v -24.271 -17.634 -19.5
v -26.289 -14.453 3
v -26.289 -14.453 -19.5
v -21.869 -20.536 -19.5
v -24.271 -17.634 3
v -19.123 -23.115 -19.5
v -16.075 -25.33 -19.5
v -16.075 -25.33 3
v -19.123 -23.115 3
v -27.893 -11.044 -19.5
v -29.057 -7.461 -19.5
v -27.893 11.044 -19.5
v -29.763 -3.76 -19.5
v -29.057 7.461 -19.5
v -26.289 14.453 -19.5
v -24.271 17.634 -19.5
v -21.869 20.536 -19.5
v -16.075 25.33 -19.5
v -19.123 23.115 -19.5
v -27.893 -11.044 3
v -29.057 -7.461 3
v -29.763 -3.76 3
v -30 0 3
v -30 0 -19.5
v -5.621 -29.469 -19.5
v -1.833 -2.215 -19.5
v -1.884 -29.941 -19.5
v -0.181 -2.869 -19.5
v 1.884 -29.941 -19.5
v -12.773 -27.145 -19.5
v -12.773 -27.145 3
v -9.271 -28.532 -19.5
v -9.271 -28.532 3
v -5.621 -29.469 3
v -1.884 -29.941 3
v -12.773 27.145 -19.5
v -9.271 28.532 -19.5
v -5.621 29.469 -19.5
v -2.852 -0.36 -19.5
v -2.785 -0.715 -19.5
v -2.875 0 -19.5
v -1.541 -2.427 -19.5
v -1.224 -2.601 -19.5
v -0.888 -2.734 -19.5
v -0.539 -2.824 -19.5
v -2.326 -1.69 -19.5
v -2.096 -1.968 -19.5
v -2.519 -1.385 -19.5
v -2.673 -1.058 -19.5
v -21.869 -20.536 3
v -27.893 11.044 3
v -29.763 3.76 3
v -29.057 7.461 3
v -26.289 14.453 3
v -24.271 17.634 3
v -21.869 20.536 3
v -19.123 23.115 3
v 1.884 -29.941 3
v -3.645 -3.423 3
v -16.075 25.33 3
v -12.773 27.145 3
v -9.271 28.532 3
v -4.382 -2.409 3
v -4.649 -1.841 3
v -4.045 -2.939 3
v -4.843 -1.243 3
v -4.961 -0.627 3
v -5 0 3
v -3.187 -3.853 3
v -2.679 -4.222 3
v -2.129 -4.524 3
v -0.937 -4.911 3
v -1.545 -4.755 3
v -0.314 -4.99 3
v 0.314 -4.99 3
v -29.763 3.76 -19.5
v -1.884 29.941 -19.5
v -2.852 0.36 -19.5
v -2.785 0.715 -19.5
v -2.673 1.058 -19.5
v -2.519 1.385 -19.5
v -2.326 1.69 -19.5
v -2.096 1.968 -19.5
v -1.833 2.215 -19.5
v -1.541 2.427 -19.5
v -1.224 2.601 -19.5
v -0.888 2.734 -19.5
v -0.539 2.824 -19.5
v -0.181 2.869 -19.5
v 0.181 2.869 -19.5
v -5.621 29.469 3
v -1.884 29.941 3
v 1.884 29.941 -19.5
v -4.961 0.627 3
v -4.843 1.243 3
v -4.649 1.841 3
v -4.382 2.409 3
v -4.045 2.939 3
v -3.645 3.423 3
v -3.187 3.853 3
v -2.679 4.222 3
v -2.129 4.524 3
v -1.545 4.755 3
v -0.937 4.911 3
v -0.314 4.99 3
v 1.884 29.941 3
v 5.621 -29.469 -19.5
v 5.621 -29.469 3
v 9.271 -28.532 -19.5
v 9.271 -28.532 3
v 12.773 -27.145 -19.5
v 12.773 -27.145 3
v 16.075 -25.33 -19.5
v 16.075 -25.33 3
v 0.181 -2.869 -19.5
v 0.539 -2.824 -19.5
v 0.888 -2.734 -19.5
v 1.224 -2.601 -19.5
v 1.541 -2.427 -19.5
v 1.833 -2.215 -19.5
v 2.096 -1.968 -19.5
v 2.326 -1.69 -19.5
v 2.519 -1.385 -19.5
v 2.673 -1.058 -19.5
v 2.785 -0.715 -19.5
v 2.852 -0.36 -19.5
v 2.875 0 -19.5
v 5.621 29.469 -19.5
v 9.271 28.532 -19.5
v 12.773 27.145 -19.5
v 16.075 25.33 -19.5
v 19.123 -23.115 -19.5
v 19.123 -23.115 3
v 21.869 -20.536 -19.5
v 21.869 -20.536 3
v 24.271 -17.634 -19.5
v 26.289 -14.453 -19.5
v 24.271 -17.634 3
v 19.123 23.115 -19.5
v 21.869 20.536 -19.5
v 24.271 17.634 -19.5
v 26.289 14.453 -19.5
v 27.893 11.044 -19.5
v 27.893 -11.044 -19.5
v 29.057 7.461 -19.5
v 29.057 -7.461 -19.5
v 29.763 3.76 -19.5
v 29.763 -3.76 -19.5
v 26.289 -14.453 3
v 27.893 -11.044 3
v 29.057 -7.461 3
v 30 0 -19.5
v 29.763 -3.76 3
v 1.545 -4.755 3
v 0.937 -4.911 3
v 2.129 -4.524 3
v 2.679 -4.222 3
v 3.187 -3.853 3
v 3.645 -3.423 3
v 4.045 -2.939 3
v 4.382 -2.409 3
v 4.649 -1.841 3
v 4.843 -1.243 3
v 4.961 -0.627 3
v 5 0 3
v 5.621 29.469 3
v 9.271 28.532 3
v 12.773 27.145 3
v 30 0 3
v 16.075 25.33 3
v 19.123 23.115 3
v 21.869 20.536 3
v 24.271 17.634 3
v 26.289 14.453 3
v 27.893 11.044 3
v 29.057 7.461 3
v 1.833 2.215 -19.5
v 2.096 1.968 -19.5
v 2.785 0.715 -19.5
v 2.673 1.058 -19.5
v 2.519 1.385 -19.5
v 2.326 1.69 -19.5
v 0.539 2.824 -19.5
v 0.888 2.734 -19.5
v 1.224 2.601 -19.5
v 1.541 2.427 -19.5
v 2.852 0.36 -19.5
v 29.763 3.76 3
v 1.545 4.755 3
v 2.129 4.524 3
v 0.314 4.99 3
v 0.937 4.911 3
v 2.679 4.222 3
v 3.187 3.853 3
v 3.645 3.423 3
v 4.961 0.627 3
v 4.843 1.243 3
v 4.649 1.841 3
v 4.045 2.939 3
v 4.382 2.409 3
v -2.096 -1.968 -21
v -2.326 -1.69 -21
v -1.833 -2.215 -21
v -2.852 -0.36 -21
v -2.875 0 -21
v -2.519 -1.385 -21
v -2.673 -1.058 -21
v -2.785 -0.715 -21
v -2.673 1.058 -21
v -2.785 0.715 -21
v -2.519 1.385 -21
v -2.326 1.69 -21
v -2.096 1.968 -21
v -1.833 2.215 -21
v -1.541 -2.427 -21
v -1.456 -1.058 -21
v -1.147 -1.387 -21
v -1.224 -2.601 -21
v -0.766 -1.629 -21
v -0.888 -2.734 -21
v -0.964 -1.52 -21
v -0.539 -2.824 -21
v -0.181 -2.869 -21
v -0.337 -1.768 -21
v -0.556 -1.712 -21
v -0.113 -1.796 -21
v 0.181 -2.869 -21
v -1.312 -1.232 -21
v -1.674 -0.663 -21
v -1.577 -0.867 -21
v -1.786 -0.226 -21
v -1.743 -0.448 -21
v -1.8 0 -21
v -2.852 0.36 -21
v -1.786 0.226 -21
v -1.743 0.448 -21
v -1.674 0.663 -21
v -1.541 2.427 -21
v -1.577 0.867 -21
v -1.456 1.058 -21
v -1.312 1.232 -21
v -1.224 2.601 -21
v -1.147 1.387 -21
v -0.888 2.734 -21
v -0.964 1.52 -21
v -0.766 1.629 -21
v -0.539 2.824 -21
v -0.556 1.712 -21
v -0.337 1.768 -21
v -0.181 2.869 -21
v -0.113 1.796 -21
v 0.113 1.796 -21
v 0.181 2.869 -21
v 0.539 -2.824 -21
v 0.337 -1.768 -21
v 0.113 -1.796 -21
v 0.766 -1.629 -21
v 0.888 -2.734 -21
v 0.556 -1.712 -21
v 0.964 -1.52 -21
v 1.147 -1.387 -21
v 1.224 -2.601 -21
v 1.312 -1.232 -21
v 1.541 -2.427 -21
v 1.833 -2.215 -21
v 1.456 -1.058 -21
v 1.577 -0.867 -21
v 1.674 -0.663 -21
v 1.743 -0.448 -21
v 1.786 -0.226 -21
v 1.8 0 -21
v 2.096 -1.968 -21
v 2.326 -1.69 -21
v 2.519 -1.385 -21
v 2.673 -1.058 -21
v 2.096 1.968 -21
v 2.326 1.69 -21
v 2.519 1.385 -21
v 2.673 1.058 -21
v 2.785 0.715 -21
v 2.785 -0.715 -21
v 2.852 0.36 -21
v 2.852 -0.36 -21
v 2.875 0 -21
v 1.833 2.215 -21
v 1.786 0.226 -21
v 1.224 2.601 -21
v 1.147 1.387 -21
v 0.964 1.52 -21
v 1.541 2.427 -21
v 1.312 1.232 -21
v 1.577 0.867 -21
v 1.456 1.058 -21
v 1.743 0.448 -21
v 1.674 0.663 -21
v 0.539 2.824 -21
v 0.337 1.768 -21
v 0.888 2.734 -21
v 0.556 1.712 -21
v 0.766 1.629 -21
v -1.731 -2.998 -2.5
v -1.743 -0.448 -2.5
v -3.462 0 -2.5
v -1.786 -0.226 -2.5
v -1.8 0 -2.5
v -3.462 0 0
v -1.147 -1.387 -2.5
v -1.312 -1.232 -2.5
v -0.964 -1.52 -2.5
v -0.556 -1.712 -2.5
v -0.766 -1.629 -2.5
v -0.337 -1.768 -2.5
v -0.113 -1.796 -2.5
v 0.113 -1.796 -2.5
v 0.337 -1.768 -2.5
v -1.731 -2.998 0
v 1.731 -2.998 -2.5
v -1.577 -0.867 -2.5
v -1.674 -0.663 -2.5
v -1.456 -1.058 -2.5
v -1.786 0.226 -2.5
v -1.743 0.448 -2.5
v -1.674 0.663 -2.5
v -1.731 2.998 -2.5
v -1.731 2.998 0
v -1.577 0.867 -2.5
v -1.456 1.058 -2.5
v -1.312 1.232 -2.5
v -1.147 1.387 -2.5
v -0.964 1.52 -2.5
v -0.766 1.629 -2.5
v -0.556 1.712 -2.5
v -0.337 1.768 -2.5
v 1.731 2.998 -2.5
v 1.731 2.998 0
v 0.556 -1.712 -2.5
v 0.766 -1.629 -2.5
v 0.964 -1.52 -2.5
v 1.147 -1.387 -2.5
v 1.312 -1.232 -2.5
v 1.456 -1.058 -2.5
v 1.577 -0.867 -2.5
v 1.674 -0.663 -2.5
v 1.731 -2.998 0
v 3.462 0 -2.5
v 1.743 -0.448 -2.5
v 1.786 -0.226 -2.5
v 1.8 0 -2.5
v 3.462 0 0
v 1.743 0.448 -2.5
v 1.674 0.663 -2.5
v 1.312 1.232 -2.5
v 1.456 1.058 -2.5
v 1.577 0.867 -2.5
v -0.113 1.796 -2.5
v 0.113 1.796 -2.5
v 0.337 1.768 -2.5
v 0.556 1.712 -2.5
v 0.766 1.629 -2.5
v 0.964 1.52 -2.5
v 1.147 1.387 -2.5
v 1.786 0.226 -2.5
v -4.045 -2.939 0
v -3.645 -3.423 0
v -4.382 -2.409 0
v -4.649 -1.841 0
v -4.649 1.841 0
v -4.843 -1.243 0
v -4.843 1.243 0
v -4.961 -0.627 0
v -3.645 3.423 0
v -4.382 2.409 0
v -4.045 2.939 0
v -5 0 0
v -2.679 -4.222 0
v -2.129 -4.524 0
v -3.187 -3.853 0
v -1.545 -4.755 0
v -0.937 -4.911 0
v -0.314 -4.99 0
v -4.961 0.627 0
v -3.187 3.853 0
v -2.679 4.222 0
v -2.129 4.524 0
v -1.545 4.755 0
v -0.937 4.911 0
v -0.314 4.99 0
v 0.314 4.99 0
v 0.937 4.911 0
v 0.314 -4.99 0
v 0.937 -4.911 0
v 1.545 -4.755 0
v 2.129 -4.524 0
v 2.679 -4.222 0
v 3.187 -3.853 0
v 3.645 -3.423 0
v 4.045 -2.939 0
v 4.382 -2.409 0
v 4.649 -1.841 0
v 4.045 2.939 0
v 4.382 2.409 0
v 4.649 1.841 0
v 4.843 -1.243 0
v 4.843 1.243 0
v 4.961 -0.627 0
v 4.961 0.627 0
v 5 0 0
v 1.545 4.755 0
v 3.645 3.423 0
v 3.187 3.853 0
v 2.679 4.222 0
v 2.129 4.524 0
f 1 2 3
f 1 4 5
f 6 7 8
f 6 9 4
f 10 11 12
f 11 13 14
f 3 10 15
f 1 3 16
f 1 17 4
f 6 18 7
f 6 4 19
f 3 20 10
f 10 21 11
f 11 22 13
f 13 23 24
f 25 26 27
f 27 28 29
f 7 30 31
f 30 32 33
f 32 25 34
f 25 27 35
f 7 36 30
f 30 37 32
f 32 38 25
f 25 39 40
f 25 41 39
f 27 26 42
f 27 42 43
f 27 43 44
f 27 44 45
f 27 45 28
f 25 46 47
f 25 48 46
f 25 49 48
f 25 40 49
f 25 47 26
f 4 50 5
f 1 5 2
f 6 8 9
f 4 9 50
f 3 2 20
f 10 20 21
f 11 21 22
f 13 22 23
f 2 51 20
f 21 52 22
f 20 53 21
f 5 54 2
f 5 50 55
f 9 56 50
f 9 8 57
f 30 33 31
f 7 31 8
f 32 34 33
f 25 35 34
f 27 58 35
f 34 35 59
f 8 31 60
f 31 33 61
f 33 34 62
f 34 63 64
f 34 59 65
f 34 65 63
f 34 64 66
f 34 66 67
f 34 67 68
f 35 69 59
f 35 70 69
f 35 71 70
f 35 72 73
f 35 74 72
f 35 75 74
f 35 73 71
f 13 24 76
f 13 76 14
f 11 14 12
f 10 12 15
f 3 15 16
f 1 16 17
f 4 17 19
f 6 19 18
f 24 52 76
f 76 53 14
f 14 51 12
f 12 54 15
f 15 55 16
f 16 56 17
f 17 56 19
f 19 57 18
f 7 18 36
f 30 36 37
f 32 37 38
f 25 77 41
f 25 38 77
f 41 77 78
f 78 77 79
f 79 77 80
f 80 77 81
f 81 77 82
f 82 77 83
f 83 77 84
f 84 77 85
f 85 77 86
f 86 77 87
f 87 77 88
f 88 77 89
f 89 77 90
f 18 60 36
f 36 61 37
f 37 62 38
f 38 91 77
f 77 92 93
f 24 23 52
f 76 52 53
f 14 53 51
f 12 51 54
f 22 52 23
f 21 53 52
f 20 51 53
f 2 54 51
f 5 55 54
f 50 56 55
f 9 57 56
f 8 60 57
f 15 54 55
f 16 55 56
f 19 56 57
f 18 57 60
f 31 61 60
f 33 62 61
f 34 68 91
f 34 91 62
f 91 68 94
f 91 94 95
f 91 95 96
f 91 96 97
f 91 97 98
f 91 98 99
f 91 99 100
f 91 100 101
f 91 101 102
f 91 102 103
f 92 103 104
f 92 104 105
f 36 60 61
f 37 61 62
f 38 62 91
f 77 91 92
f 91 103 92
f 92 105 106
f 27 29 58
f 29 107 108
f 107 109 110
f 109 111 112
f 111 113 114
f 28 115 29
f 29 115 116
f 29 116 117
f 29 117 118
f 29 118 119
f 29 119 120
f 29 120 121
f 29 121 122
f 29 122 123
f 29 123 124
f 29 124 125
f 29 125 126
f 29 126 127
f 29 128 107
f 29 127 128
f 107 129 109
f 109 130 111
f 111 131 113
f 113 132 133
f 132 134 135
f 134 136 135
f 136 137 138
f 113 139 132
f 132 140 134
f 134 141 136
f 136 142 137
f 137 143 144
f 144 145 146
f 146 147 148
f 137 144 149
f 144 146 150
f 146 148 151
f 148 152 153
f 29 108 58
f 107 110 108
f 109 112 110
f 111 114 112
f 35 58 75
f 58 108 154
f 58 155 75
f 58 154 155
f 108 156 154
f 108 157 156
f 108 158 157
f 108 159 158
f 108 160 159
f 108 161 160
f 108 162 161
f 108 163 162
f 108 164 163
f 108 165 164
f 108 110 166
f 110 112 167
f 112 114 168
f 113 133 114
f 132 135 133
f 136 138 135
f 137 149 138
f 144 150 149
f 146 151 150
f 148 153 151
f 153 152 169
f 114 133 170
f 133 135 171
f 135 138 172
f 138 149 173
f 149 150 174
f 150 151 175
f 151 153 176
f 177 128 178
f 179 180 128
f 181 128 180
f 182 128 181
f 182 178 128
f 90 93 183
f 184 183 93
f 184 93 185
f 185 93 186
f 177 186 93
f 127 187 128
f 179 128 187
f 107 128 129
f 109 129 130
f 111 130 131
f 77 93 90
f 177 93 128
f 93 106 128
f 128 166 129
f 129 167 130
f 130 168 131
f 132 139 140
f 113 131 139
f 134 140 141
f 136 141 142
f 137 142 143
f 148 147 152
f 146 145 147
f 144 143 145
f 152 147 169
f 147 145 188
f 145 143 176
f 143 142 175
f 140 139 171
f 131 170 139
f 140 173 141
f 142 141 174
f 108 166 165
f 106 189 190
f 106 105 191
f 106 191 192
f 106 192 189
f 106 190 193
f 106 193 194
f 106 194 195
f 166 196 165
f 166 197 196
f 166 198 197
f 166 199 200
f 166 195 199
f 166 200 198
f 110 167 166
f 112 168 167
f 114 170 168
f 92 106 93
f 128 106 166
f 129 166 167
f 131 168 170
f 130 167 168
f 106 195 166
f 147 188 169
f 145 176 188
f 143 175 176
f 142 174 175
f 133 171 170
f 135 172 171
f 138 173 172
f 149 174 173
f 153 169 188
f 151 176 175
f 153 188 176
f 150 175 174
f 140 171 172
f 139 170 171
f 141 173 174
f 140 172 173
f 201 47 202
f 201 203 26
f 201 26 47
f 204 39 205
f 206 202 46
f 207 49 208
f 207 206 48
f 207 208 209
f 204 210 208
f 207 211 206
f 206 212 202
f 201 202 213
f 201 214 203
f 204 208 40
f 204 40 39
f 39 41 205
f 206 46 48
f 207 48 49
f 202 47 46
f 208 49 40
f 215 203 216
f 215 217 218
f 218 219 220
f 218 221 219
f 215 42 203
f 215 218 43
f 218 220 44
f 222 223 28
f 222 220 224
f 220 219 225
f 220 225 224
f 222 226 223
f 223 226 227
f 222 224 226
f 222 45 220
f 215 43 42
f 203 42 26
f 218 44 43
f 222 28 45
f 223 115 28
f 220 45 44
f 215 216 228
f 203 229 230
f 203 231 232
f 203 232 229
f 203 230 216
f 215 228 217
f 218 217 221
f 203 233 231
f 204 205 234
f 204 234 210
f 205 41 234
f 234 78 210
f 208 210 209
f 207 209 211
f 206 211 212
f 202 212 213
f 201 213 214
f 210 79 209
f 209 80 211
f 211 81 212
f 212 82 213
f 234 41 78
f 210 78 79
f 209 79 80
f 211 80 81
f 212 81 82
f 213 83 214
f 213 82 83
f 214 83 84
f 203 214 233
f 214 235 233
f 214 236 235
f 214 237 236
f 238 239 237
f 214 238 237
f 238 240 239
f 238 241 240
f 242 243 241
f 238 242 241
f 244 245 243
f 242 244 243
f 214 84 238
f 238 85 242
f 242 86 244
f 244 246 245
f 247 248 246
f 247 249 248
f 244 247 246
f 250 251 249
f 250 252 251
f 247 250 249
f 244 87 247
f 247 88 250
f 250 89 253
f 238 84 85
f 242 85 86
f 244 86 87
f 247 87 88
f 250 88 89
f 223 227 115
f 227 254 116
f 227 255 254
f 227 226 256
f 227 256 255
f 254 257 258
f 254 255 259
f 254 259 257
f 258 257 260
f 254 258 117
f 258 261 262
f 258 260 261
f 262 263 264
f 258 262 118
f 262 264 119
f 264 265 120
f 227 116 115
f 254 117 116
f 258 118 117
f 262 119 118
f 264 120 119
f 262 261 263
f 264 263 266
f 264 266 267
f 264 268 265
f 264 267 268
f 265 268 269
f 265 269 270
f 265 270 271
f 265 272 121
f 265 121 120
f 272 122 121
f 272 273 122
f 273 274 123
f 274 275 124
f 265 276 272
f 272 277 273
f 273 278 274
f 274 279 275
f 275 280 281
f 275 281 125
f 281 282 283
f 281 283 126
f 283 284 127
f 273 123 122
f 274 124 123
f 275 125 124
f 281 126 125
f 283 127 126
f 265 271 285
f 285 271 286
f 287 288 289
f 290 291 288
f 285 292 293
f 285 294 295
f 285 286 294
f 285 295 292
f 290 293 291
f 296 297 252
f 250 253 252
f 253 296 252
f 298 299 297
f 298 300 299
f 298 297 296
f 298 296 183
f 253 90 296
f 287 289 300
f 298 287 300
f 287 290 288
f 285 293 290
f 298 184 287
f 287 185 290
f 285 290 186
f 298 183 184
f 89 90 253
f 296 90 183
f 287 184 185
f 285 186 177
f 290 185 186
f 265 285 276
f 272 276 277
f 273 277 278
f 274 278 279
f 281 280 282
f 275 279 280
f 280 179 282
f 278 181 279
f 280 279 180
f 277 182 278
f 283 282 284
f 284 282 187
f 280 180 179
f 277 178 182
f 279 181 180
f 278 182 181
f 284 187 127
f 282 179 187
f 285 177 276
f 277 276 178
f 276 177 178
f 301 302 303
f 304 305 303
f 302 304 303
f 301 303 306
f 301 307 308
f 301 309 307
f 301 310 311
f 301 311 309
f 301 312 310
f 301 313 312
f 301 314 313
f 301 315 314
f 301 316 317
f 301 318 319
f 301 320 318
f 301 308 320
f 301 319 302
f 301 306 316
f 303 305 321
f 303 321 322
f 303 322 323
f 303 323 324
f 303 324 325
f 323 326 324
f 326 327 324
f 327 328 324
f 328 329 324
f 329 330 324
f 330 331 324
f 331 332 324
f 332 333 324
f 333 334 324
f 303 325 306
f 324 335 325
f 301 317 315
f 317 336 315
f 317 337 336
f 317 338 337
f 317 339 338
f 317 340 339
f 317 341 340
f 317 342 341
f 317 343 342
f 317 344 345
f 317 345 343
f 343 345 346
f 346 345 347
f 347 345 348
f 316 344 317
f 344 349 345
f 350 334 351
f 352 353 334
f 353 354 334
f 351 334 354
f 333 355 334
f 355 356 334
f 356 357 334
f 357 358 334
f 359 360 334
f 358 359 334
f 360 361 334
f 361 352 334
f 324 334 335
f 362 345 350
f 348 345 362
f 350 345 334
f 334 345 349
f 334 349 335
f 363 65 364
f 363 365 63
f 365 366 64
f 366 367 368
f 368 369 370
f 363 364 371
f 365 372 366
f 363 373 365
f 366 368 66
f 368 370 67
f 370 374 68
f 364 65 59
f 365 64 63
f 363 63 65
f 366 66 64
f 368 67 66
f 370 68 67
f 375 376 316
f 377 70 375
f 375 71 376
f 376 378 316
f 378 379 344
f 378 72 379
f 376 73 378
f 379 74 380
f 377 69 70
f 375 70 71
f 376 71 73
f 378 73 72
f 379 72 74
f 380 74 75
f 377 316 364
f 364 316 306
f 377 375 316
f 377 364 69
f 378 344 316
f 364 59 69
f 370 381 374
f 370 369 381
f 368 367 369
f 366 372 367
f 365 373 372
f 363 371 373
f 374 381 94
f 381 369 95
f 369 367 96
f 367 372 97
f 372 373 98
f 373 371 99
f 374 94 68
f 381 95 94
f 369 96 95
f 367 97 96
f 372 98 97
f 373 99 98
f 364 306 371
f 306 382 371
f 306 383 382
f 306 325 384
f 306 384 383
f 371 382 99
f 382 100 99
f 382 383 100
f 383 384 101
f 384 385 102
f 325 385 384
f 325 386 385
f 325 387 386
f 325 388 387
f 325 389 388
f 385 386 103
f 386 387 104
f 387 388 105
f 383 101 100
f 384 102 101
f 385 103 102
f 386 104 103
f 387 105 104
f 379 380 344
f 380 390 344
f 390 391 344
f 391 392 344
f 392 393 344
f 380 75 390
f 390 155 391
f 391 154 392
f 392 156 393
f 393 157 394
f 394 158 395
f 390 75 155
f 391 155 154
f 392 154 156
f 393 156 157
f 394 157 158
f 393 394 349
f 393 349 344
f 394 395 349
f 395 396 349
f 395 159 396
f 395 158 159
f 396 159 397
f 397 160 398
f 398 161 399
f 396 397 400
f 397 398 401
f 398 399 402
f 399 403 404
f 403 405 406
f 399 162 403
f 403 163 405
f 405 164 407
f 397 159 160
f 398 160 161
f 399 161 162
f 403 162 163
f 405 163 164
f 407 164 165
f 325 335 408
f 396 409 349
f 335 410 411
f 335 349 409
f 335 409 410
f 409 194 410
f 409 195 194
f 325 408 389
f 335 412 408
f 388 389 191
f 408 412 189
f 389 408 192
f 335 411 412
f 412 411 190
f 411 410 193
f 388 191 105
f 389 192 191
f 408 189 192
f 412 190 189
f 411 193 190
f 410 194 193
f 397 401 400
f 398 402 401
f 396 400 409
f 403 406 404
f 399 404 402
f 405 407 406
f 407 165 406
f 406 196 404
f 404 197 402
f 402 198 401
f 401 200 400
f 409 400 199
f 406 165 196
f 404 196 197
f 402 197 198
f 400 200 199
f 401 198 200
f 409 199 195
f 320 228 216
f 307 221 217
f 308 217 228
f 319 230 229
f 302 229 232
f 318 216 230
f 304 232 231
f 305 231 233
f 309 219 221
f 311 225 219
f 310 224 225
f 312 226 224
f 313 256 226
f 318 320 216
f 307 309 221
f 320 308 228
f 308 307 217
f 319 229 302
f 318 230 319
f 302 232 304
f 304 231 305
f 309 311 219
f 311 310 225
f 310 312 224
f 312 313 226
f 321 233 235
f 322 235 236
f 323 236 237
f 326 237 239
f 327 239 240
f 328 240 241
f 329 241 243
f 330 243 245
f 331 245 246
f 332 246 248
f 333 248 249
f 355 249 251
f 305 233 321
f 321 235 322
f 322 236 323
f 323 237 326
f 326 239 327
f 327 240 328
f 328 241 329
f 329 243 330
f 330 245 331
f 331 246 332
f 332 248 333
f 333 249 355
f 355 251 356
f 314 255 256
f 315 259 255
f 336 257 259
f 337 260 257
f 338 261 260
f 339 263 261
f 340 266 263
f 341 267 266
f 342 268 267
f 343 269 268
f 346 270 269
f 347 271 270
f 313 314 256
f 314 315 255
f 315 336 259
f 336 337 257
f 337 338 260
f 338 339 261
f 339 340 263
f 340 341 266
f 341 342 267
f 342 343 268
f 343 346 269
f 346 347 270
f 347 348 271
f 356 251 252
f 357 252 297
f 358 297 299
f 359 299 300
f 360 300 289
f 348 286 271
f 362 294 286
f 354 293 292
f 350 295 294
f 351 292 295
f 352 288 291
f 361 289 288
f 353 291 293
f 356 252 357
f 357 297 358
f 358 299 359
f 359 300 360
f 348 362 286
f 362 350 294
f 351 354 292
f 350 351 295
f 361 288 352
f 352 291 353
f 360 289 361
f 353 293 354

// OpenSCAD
$fn = 50;

difference() {
	union() {
		translate(v = [0, 0, -19.5]) {
			cylinder(h = 22.5, r = 30.0);
		}
		#translate(v = [0, 0, -21.0]) {
			cylinder(h = 21, r = 2.875);
		}
	}
	union() {
		translate(v = [0, 0, 0]) {
			rotate(a = [0, 0, 0]) {
				difference() {
					union() {
						translate(v = [0, 0, -2.5]) {
							linear_extrude(height = 2.5) {
								polygon(points = [[3.4619999999999997, 0.0], [1.7310000000000003, 2.9981799479017264], [-1.7309999999999992, 2.9981799479017264], [-3.4619999999999997, 4.2397272186481365e-16], [-1.7310000000000014, -2.998179947901726], [1.7309999999999977, -2.9981799479017277]]);
							}
						}
					}
					union();
				}
			}
		}
		#cylinder(h = 3, r = 5.0);
		#translate(v = [0, 0, -100.0]) {
			cylinder(h = 200, r = 1.8);
		}
	}
}
